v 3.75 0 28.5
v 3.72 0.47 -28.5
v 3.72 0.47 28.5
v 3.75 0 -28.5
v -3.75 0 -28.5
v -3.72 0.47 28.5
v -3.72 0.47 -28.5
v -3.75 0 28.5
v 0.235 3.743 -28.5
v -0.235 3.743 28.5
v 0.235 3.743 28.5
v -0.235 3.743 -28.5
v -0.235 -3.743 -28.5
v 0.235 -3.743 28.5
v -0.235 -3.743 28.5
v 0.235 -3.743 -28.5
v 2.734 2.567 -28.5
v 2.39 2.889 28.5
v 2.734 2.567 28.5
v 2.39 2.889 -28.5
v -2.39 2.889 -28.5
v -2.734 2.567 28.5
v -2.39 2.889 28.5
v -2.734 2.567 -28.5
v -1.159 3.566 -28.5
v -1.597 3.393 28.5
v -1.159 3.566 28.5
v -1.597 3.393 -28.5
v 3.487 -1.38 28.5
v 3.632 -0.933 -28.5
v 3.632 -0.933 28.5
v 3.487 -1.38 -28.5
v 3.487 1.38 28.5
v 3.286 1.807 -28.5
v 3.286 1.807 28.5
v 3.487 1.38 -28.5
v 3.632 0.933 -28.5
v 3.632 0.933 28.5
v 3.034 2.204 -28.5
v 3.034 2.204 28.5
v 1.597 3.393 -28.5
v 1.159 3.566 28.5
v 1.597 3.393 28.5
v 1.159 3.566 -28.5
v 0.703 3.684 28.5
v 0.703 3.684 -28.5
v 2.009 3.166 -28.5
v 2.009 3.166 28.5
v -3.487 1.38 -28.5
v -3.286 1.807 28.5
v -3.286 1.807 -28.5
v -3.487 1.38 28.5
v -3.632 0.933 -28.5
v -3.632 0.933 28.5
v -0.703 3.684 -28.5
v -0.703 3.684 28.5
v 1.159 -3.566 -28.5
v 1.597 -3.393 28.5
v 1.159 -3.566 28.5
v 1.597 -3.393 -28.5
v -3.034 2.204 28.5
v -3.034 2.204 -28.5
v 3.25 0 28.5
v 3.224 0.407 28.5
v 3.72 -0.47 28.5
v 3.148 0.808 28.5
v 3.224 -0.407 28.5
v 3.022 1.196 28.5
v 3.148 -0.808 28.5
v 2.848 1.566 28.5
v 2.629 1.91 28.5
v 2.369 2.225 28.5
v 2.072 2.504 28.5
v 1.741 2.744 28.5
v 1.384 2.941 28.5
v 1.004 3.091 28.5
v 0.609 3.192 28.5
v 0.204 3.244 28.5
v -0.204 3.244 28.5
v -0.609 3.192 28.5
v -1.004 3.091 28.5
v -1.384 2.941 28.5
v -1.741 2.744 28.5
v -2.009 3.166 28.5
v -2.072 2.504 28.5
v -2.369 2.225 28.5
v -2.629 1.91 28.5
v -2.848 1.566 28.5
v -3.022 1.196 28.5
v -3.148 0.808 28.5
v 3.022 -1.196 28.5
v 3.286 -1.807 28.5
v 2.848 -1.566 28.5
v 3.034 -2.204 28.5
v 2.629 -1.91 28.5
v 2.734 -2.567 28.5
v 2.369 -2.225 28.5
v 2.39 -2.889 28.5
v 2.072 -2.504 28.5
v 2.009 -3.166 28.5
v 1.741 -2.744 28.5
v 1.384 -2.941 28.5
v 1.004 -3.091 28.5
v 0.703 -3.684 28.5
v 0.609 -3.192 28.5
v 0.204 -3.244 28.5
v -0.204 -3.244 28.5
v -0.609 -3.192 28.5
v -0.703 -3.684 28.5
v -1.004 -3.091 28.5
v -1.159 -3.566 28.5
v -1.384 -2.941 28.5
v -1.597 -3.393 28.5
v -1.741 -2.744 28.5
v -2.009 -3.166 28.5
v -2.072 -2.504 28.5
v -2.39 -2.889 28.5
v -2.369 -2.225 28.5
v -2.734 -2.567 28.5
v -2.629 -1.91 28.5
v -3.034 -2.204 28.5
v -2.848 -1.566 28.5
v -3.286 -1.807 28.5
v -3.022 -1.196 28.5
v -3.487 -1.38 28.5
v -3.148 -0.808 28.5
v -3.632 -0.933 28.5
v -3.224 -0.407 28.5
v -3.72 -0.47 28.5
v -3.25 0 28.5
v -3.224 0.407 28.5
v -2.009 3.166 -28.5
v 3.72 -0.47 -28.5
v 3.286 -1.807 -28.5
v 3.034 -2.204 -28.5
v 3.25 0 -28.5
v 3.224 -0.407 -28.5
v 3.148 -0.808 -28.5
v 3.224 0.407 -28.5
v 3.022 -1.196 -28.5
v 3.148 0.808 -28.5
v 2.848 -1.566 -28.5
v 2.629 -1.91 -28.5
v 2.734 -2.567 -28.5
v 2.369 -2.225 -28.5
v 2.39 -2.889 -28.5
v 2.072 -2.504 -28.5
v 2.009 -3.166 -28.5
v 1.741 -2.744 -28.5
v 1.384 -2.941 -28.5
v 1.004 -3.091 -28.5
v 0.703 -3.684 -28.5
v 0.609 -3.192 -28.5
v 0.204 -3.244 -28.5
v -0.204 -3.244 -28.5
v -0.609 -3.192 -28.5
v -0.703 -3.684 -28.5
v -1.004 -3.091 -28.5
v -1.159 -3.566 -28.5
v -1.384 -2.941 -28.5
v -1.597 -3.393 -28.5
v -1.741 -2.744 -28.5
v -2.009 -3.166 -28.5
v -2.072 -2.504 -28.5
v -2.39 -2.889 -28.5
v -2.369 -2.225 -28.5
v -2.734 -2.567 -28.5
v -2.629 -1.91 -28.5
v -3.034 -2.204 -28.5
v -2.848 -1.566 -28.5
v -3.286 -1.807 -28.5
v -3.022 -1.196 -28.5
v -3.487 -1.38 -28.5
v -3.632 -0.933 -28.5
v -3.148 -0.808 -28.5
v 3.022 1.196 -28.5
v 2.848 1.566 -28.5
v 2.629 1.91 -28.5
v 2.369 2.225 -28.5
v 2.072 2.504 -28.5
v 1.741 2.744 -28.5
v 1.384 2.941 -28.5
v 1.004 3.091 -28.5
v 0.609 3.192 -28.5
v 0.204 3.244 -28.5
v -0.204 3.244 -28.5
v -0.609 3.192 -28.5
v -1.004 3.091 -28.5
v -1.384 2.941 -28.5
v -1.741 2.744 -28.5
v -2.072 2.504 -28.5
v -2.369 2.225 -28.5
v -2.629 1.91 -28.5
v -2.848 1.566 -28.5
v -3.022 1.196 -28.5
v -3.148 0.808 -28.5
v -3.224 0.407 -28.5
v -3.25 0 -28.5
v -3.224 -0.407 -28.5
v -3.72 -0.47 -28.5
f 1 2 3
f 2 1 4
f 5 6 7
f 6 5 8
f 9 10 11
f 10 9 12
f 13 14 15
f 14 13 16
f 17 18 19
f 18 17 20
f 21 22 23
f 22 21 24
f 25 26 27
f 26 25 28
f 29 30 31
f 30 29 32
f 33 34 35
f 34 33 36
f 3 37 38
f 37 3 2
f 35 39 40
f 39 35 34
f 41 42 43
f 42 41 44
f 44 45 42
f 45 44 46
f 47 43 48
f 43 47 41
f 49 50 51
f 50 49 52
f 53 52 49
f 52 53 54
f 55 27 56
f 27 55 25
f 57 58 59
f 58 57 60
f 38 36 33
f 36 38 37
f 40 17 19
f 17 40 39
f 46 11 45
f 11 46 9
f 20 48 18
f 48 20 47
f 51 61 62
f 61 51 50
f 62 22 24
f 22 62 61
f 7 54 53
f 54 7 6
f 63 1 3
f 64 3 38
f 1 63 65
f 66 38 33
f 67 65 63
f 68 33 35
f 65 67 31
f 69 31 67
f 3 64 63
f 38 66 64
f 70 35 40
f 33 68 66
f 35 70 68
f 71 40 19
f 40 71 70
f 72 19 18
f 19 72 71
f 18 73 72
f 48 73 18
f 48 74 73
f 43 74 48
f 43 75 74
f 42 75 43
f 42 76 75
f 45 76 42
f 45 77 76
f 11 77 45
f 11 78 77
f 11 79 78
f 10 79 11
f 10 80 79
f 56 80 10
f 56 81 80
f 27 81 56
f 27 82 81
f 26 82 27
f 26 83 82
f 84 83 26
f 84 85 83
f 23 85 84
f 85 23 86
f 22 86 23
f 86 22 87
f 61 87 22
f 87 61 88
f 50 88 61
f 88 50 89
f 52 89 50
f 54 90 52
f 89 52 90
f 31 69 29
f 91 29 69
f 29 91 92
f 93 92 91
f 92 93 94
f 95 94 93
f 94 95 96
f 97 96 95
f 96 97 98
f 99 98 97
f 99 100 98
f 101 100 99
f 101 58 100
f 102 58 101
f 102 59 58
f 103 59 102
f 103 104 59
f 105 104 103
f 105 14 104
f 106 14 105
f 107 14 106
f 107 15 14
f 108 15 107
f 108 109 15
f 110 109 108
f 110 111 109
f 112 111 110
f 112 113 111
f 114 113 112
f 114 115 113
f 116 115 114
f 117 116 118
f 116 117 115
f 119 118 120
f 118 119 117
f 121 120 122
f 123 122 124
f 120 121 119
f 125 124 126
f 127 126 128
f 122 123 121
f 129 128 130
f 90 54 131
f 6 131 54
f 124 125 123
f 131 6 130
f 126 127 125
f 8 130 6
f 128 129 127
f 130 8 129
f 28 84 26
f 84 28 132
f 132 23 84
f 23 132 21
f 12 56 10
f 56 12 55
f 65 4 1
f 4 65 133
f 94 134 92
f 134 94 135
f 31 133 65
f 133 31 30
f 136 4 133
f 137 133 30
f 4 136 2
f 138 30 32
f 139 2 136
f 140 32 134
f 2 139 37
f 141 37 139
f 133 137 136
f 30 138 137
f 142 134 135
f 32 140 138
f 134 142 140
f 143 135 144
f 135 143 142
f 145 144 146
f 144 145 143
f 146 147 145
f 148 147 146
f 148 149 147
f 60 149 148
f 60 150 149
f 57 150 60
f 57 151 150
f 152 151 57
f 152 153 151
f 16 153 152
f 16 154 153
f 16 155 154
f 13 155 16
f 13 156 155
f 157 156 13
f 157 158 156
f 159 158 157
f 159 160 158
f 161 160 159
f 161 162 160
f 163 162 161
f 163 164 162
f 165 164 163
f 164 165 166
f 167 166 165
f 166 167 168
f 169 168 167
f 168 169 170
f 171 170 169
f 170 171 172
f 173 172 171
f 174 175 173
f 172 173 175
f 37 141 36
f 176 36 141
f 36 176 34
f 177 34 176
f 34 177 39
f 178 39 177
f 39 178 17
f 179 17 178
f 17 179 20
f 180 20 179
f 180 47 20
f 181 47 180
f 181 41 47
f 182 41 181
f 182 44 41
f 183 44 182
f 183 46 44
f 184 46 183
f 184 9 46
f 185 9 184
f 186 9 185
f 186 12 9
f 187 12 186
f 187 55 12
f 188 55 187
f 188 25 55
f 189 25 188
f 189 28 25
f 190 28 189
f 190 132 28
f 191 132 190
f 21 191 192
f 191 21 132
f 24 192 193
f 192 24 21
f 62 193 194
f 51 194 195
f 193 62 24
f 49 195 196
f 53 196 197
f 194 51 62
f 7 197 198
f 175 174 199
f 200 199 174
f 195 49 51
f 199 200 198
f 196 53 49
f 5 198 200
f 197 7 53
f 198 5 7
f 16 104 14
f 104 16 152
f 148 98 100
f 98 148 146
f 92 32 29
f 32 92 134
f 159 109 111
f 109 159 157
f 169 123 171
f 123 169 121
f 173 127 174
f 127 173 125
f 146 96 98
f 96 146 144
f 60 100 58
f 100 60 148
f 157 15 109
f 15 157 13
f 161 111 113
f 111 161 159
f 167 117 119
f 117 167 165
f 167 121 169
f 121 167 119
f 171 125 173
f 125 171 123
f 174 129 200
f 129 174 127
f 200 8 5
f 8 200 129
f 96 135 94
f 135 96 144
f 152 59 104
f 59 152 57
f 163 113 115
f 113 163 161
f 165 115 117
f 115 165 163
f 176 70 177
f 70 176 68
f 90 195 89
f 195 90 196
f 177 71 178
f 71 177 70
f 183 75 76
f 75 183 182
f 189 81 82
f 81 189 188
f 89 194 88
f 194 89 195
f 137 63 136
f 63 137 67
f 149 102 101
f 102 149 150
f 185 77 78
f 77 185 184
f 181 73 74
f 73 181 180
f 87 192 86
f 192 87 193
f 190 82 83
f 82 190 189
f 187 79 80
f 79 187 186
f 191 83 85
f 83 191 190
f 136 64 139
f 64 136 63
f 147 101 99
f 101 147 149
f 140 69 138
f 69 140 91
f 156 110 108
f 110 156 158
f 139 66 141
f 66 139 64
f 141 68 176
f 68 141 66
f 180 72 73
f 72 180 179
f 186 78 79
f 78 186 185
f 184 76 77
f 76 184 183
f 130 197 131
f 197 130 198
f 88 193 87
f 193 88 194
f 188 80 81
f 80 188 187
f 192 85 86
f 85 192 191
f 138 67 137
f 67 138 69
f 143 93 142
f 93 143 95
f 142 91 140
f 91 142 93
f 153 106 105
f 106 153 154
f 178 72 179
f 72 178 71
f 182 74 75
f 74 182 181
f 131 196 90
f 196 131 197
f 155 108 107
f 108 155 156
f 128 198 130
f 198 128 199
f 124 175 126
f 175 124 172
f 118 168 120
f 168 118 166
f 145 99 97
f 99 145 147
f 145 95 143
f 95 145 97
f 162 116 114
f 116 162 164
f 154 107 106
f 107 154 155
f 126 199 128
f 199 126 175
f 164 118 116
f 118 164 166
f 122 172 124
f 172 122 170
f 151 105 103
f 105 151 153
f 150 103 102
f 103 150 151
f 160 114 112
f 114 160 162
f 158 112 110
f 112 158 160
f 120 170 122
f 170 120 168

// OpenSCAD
$fn = 50;


difference() {
	union() {
		translate(v = [0, 0, -28.5000000000]) {
			cylinder(h = 57, r = 3.7500000000);
		}
	}
	union() {
		translate(v = [0, 0, -100.0000000000]) {
			cylinder(h = 200, r = 3.2500000000);
		}
	}
}
